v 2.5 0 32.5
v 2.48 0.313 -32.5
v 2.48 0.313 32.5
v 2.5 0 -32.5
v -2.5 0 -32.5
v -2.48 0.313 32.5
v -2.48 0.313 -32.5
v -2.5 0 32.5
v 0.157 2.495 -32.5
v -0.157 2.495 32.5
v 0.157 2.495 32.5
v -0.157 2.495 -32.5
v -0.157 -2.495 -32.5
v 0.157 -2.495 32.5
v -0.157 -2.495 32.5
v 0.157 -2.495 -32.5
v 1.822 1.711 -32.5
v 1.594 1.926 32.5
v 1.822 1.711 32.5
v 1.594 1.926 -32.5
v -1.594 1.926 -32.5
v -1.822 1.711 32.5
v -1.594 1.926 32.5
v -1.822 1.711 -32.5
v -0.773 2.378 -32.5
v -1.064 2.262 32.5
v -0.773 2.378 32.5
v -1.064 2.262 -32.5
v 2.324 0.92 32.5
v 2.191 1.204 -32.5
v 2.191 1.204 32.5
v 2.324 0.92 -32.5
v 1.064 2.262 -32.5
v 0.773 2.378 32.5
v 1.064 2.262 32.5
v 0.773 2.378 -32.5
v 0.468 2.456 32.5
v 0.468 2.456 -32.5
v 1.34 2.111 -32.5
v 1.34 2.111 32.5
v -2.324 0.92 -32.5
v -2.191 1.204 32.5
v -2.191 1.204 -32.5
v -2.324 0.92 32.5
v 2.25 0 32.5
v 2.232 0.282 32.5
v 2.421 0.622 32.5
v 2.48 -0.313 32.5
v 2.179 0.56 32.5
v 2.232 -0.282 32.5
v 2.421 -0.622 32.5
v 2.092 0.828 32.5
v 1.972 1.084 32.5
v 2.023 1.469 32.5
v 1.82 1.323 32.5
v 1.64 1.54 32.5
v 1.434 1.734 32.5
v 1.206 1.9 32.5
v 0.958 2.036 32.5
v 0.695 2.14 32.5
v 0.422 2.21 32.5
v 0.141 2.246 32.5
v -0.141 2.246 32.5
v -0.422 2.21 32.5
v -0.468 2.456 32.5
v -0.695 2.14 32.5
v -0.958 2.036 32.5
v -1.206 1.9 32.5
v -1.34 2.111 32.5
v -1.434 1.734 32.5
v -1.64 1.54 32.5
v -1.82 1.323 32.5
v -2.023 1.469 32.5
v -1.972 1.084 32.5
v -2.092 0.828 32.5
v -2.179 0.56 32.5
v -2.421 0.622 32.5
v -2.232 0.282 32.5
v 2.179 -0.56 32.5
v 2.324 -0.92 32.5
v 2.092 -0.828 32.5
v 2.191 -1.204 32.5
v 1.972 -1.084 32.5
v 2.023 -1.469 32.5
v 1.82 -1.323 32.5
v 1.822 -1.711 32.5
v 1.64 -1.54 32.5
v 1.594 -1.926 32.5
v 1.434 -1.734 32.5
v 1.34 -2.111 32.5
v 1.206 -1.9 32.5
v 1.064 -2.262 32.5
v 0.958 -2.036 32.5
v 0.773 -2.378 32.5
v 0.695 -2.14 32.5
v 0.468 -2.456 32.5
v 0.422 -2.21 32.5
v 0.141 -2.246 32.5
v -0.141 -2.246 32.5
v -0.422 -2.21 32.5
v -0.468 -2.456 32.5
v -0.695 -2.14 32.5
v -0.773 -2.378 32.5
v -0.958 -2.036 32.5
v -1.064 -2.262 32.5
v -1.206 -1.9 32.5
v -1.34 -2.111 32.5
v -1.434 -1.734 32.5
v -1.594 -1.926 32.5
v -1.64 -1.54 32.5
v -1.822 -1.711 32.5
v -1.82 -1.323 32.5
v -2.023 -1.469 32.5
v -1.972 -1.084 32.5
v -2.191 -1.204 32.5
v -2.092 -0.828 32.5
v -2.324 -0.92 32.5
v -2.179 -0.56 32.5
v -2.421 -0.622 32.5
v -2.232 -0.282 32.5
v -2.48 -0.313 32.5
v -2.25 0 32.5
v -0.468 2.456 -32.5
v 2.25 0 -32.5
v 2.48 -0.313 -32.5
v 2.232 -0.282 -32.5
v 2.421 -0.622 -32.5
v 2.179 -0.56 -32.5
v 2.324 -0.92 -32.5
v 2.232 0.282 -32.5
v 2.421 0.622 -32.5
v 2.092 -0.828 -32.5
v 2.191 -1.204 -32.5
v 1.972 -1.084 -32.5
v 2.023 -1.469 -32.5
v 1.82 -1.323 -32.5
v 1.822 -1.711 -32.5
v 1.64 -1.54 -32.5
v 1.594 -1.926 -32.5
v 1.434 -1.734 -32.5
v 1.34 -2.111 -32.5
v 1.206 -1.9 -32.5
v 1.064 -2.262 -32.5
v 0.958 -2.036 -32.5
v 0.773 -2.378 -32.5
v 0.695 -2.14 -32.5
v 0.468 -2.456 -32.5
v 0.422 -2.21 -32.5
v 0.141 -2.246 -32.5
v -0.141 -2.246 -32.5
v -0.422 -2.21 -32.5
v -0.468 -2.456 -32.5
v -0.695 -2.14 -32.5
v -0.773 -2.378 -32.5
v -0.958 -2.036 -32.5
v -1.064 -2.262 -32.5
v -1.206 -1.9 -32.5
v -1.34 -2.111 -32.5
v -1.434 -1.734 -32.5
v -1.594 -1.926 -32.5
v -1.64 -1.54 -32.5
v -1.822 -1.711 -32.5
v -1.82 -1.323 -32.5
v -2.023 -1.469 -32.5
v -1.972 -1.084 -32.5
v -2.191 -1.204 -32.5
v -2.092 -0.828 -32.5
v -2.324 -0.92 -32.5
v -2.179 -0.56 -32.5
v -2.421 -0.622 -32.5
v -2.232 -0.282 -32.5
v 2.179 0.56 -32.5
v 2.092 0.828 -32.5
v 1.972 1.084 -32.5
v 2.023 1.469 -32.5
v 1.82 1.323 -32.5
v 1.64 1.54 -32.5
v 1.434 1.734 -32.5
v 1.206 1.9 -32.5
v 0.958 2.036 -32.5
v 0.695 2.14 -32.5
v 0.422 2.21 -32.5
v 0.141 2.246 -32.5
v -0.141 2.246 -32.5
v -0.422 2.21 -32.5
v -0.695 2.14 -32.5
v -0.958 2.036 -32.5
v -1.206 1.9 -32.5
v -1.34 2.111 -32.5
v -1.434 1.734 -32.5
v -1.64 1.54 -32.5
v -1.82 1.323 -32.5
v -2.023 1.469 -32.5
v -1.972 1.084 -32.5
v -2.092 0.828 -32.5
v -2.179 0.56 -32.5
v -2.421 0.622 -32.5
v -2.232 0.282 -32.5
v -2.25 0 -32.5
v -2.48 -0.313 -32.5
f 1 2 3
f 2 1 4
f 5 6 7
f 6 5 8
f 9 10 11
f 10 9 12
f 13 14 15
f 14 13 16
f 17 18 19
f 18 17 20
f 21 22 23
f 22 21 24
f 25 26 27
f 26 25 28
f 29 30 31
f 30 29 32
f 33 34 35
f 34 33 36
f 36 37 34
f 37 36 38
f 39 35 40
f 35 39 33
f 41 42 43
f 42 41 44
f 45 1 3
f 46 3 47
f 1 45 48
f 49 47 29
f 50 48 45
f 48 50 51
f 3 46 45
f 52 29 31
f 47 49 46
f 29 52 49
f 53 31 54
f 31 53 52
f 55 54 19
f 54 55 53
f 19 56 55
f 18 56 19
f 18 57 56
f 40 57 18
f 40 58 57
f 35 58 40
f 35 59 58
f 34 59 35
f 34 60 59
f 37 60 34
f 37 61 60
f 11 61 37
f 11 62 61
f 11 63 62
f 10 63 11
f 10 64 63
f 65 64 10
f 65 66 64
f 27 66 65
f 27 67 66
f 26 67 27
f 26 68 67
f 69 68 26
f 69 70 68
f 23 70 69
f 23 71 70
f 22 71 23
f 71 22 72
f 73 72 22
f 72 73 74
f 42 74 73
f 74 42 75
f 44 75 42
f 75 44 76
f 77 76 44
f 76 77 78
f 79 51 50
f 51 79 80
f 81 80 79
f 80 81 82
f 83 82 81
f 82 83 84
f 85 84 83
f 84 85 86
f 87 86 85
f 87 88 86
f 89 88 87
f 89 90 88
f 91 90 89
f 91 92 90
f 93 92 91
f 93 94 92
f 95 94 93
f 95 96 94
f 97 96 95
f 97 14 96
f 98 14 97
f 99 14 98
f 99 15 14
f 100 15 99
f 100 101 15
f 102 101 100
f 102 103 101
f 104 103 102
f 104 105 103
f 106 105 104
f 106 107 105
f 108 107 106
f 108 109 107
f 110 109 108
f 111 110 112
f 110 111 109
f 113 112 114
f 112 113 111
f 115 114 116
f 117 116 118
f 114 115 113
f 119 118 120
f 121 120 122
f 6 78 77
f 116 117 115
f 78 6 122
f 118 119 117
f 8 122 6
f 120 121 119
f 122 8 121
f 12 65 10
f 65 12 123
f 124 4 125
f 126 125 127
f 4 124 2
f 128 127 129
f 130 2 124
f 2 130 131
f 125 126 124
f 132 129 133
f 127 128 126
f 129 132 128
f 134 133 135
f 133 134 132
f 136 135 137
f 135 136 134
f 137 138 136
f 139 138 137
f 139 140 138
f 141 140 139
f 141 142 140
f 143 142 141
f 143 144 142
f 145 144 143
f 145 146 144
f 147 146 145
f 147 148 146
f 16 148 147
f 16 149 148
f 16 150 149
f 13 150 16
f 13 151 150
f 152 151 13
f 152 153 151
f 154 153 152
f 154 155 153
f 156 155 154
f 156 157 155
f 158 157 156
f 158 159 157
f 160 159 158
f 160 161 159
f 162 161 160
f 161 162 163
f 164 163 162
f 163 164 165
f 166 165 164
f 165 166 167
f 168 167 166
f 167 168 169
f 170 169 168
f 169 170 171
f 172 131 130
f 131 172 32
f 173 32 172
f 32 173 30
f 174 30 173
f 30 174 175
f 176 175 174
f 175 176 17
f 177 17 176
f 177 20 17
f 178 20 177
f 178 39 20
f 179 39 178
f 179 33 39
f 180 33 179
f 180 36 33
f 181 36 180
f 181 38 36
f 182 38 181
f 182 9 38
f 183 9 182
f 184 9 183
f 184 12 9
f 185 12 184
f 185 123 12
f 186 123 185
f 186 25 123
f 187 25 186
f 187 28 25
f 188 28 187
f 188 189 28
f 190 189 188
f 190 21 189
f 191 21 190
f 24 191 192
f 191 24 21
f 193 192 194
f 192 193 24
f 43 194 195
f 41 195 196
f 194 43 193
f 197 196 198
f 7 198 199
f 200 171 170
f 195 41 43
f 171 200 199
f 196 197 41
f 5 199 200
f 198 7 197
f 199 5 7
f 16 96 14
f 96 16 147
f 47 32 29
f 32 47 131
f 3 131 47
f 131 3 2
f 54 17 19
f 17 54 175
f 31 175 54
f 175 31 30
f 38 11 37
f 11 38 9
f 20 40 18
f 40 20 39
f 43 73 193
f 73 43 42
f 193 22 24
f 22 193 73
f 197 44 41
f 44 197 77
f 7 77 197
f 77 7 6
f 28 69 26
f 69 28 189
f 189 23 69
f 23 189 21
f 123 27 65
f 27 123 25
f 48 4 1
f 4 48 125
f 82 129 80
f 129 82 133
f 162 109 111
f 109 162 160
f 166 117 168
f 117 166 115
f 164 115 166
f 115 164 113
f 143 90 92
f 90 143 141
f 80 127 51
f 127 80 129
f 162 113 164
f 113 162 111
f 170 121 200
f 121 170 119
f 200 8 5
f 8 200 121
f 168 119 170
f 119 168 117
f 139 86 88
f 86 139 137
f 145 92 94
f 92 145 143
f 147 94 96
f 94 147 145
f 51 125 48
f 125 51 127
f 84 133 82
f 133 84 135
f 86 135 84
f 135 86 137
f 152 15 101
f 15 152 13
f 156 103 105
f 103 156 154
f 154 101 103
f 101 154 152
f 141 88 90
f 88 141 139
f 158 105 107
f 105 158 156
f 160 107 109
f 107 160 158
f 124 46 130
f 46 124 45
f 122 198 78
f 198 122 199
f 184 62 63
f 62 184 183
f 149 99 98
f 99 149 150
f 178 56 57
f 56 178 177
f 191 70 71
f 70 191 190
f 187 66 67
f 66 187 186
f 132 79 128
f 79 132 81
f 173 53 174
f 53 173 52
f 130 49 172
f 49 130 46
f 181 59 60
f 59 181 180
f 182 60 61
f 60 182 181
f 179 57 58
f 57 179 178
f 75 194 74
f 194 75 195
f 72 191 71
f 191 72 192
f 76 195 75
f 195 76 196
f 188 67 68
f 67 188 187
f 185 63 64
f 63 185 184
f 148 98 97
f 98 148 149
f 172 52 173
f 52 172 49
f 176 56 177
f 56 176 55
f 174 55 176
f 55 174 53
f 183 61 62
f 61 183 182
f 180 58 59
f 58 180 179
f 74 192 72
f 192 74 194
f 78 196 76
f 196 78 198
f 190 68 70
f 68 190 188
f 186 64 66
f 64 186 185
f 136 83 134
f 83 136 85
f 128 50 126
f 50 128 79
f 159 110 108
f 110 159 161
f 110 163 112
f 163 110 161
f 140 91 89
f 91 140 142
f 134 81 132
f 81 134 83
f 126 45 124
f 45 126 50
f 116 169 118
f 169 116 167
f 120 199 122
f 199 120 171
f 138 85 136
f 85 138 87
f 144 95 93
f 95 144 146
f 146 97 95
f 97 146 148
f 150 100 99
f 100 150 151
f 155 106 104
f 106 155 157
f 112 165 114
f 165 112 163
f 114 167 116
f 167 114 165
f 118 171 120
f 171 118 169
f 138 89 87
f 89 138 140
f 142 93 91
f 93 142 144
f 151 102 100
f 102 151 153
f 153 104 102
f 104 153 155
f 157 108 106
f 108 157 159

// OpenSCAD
$fn = 50;


difference() {
	union() {
		translate(v = [0, 0, -32.5000000000]) {
			cylinder(h = 65, r = 2.5000000000);
		}
	}
	union() {
		translate(v = [0, 0, -100.0000000000]) {
			cylinder(h = 200, r = 2.2500000000);
		}
	}
}
